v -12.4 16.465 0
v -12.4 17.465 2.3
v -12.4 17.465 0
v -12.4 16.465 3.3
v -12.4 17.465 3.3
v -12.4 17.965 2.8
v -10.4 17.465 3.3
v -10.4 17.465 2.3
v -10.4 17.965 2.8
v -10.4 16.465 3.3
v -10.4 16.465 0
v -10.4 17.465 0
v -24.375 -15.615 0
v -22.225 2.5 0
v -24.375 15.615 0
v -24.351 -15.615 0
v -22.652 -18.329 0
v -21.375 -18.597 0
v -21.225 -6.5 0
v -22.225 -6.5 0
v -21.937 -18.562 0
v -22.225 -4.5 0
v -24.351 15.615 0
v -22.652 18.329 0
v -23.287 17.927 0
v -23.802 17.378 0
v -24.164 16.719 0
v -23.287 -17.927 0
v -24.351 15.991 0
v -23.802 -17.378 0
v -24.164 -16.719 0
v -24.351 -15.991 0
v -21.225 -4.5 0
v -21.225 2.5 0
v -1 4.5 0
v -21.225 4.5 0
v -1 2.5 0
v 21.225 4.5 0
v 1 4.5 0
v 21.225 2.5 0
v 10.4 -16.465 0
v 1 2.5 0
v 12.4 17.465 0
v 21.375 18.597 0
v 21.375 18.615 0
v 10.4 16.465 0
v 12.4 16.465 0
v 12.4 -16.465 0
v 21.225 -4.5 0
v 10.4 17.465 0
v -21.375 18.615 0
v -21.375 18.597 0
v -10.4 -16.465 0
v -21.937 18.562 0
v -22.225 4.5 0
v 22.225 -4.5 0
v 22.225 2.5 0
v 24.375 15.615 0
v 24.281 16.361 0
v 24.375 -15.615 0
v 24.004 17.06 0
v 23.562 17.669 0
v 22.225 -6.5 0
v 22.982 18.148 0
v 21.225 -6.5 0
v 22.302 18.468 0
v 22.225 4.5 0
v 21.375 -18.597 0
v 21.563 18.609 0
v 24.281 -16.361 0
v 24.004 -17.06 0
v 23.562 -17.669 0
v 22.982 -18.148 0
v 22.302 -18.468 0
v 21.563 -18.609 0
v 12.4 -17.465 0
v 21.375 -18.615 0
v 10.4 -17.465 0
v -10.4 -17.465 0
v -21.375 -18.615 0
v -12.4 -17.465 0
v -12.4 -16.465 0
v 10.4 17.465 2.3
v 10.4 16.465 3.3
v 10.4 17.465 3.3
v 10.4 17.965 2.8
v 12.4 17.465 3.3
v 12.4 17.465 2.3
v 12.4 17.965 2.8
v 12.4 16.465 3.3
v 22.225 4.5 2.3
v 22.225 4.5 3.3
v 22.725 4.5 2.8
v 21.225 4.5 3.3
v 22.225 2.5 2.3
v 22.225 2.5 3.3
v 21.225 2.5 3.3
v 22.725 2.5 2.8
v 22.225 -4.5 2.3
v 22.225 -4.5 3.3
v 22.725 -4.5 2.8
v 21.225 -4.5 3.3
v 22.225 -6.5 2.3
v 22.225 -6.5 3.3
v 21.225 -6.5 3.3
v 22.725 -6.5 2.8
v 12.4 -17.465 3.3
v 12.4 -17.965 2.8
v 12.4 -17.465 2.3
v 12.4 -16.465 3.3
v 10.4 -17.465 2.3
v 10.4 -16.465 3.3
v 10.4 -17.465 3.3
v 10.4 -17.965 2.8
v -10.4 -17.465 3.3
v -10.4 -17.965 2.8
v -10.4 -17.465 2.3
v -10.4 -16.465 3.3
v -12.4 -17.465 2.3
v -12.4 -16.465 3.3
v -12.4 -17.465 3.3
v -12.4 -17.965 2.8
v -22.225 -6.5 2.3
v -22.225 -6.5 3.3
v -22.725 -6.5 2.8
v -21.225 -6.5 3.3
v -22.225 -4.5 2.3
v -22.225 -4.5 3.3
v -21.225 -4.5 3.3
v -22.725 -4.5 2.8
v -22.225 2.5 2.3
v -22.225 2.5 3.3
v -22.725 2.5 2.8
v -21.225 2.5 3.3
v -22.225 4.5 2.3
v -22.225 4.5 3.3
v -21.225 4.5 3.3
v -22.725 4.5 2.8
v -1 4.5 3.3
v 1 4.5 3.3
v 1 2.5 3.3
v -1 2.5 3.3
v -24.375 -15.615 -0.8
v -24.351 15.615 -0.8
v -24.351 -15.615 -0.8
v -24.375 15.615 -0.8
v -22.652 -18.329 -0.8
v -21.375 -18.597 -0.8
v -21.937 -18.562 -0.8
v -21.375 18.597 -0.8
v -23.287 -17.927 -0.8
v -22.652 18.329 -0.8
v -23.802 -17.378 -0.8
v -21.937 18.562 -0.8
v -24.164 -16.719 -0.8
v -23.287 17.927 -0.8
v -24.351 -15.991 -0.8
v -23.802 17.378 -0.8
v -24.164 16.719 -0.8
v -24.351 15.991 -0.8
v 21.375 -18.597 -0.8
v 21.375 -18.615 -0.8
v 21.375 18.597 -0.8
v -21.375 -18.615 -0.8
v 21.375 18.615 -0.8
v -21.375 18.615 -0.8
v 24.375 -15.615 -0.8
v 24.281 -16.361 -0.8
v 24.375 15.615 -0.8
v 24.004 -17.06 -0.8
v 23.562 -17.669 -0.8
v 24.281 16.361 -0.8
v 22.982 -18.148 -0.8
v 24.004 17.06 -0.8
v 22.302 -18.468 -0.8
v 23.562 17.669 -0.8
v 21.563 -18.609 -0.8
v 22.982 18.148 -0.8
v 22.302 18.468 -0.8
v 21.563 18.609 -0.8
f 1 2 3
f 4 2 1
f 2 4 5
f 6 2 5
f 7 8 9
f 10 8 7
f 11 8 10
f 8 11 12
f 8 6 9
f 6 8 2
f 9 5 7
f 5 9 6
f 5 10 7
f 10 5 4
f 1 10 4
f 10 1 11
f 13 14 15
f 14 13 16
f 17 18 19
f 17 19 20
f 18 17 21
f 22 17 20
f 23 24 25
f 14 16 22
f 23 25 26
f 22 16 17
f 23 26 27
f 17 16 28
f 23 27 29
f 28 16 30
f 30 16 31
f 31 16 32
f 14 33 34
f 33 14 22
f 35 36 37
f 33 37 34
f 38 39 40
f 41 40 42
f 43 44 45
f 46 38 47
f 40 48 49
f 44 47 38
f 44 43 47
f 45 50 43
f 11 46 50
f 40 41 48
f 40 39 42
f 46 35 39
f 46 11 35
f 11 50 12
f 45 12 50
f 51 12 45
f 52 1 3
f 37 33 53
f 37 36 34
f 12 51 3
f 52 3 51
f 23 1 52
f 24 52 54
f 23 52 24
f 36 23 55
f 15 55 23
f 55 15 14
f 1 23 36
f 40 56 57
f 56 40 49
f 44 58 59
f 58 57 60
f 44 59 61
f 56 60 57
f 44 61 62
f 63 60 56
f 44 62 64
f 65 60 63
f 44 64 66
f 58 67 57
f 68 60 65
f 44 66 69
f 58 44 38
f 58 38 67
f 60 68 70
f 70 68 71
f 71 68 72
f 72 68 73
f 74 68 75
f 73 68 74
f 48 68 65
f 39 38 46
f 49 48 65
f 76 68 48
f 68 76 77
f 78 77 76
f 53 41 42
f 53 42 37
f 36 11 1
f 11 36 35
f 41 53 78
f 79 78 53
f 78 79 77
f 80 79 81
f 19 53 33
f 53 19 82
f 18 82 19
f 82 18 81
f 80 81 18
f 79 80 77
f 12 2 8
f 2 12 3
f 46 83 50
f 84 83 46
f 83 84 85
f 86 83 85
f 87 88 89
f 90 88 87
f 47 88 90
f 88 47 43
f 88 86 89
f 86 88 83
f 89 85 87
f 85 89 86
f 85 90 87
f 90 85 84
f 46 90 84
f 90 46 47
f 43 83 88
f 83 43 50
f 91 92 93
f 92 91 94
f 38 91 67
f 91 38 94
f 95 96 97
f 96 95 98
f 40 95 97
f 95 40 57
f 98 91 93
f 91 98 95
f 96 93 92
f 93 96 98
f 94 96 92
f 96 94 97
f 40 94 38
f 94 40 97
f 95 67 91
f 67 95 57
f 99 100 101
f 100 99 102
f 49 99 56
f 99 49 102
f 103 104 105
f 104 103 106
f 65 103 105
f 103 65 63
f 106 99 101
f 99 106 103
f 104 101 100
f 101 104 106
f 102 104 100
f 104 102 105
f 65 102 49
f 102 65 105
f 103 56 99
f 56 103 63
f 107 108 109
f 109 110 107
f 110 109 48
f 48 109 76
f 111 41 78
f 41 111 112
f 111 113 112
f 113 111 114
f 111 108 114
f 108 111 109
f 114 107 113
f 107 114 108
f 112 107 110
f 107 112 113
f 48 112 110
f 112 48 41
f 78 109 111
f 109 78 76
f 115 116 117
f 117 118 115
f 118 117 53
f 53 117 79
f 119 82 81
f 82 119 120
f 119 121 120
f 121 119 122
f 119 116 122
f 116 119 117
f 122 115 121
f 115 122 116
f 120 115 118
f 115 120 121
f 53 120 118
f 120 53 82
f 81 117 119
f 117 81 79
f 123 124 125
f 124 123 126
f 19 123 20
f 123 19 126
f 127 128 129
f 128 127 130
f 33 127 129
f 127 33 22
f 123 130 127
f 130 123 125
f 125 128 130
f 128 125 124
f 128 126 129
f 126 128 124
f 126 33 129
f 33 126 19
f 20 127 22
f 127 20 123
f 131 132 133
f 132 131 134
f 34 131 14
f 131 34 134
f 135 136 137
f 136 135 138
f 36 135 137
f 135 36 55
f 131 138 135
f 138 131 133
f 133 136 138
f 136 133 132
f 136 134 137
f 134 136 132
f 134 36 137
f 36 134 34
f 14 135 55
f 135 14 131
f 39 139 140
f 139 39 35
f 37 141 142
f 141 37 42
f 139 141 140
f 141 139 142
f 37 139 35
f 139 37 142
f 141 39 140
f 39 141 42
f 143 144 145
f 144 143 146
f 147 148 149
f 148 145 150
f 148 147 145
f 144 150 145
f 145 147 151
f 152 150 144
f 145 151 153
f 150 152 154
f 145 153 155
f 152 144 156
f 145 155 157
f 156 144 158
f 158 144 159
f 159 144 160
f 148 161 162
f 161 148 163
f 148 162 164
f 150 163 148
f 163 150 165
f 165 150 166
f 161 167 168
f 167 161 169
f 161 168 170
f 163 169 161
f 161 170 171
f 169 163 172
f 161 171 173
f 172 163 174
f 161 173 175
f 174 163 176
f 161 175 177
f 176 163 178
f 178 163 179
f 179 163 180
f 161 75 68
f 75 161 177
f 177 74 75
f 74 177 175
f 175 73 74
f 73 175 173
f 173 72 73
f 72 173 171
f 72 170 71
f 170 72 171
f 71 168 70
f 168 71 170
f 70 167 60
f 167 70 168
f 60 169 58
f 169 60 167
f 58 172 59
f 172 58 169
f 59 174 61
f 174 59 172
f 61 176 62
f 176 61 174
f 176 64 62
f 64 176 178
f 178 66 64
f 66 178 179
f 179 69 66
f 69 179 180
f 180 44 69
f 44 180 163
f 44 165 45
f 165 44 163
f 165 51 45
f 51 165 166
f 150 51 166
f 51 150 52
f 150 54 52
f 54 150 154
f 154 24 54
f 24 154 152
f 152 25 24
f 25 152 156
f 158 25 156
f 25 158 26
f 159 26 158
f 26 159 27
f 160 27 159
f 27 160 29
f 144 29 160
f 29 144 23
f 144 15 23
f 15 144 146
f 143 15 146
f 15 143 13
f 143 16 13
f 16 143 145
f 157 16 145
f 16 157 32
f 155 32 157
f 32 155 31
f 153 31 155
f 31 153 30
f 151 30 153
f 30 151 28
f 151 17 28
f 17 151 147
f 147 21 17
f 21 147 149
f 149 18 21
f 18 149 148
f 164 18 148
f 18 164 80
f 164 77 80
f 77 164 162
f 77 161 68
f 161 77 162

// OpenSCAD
// file: _base.scad
module rsquare(dim, r=0, center=false) {
  x = dim[0];
  y = dim[1];

  ox = center ? -x/2 : 0;
  oy = center ? -y/2 : 0;

  translate([ox, oy]) {
    union() {
      translate([r, 0])
        square([x-2*r, y]);
      translate([0, r])
        square([x, y-2*r]);
      translate([r, r])
        circle(r);
      translate([x-r, r])
        circle(r);
      translate([r, y-r])
        circle(r);
      translate([x-r, y-r])
        circle(r);
    }
  }
}
// main file
use<_base.scad>

$fn = 25;

// board dimensions
bx = 44.45;
by = 34.93;

// wall thickness
wlr = 2.0; // left-right
wtb = 1.0; // top-bottom
wfr = 0.8; // front-rear

// tolerance
tol = 0.15;

module Base() {
  translate([0, 0, -wfr])
    linear_extrude(wfr)
      rsquare([bx+2*wlr+2*tol, by+2*wtb+2*tol], r=3, center=true);
}

module Snaps() {
  sx = 2;
  sy = 1;
  sz = 3.3;

  snaps = [
    [[-11.4,  by/2], 90],
    [[ 11.4,  by/2], 90],
    [[ bx/2,   3.5], 0],
    [[ bx/2,  -5.5], 0],
    [[ 11.4, -by/2], 270],
    [[-11.4, -by/2], 270],
    [[-bx/2,  -5.5], 180],
    [[-bx/2,   3.5], 180],
    // these two are joined to form a single solid support
    [[    0,   3.5], 0],
    [[    0,   3.5], 180],
  ];

  for (s = snaps)
    translate(s[0])
      rotate([0, 0, s[1]])
        // single snap
        translate([0, sx/2])
          rotate([90, 0, 0])
            linear_extrude(sx)
              polygon([[0, 0], [-sy, 0], [-sy, sz], [0, sz], [0.5, sz-0.5], [0, sz-1.0]]);
}

Base();
Snaps();
